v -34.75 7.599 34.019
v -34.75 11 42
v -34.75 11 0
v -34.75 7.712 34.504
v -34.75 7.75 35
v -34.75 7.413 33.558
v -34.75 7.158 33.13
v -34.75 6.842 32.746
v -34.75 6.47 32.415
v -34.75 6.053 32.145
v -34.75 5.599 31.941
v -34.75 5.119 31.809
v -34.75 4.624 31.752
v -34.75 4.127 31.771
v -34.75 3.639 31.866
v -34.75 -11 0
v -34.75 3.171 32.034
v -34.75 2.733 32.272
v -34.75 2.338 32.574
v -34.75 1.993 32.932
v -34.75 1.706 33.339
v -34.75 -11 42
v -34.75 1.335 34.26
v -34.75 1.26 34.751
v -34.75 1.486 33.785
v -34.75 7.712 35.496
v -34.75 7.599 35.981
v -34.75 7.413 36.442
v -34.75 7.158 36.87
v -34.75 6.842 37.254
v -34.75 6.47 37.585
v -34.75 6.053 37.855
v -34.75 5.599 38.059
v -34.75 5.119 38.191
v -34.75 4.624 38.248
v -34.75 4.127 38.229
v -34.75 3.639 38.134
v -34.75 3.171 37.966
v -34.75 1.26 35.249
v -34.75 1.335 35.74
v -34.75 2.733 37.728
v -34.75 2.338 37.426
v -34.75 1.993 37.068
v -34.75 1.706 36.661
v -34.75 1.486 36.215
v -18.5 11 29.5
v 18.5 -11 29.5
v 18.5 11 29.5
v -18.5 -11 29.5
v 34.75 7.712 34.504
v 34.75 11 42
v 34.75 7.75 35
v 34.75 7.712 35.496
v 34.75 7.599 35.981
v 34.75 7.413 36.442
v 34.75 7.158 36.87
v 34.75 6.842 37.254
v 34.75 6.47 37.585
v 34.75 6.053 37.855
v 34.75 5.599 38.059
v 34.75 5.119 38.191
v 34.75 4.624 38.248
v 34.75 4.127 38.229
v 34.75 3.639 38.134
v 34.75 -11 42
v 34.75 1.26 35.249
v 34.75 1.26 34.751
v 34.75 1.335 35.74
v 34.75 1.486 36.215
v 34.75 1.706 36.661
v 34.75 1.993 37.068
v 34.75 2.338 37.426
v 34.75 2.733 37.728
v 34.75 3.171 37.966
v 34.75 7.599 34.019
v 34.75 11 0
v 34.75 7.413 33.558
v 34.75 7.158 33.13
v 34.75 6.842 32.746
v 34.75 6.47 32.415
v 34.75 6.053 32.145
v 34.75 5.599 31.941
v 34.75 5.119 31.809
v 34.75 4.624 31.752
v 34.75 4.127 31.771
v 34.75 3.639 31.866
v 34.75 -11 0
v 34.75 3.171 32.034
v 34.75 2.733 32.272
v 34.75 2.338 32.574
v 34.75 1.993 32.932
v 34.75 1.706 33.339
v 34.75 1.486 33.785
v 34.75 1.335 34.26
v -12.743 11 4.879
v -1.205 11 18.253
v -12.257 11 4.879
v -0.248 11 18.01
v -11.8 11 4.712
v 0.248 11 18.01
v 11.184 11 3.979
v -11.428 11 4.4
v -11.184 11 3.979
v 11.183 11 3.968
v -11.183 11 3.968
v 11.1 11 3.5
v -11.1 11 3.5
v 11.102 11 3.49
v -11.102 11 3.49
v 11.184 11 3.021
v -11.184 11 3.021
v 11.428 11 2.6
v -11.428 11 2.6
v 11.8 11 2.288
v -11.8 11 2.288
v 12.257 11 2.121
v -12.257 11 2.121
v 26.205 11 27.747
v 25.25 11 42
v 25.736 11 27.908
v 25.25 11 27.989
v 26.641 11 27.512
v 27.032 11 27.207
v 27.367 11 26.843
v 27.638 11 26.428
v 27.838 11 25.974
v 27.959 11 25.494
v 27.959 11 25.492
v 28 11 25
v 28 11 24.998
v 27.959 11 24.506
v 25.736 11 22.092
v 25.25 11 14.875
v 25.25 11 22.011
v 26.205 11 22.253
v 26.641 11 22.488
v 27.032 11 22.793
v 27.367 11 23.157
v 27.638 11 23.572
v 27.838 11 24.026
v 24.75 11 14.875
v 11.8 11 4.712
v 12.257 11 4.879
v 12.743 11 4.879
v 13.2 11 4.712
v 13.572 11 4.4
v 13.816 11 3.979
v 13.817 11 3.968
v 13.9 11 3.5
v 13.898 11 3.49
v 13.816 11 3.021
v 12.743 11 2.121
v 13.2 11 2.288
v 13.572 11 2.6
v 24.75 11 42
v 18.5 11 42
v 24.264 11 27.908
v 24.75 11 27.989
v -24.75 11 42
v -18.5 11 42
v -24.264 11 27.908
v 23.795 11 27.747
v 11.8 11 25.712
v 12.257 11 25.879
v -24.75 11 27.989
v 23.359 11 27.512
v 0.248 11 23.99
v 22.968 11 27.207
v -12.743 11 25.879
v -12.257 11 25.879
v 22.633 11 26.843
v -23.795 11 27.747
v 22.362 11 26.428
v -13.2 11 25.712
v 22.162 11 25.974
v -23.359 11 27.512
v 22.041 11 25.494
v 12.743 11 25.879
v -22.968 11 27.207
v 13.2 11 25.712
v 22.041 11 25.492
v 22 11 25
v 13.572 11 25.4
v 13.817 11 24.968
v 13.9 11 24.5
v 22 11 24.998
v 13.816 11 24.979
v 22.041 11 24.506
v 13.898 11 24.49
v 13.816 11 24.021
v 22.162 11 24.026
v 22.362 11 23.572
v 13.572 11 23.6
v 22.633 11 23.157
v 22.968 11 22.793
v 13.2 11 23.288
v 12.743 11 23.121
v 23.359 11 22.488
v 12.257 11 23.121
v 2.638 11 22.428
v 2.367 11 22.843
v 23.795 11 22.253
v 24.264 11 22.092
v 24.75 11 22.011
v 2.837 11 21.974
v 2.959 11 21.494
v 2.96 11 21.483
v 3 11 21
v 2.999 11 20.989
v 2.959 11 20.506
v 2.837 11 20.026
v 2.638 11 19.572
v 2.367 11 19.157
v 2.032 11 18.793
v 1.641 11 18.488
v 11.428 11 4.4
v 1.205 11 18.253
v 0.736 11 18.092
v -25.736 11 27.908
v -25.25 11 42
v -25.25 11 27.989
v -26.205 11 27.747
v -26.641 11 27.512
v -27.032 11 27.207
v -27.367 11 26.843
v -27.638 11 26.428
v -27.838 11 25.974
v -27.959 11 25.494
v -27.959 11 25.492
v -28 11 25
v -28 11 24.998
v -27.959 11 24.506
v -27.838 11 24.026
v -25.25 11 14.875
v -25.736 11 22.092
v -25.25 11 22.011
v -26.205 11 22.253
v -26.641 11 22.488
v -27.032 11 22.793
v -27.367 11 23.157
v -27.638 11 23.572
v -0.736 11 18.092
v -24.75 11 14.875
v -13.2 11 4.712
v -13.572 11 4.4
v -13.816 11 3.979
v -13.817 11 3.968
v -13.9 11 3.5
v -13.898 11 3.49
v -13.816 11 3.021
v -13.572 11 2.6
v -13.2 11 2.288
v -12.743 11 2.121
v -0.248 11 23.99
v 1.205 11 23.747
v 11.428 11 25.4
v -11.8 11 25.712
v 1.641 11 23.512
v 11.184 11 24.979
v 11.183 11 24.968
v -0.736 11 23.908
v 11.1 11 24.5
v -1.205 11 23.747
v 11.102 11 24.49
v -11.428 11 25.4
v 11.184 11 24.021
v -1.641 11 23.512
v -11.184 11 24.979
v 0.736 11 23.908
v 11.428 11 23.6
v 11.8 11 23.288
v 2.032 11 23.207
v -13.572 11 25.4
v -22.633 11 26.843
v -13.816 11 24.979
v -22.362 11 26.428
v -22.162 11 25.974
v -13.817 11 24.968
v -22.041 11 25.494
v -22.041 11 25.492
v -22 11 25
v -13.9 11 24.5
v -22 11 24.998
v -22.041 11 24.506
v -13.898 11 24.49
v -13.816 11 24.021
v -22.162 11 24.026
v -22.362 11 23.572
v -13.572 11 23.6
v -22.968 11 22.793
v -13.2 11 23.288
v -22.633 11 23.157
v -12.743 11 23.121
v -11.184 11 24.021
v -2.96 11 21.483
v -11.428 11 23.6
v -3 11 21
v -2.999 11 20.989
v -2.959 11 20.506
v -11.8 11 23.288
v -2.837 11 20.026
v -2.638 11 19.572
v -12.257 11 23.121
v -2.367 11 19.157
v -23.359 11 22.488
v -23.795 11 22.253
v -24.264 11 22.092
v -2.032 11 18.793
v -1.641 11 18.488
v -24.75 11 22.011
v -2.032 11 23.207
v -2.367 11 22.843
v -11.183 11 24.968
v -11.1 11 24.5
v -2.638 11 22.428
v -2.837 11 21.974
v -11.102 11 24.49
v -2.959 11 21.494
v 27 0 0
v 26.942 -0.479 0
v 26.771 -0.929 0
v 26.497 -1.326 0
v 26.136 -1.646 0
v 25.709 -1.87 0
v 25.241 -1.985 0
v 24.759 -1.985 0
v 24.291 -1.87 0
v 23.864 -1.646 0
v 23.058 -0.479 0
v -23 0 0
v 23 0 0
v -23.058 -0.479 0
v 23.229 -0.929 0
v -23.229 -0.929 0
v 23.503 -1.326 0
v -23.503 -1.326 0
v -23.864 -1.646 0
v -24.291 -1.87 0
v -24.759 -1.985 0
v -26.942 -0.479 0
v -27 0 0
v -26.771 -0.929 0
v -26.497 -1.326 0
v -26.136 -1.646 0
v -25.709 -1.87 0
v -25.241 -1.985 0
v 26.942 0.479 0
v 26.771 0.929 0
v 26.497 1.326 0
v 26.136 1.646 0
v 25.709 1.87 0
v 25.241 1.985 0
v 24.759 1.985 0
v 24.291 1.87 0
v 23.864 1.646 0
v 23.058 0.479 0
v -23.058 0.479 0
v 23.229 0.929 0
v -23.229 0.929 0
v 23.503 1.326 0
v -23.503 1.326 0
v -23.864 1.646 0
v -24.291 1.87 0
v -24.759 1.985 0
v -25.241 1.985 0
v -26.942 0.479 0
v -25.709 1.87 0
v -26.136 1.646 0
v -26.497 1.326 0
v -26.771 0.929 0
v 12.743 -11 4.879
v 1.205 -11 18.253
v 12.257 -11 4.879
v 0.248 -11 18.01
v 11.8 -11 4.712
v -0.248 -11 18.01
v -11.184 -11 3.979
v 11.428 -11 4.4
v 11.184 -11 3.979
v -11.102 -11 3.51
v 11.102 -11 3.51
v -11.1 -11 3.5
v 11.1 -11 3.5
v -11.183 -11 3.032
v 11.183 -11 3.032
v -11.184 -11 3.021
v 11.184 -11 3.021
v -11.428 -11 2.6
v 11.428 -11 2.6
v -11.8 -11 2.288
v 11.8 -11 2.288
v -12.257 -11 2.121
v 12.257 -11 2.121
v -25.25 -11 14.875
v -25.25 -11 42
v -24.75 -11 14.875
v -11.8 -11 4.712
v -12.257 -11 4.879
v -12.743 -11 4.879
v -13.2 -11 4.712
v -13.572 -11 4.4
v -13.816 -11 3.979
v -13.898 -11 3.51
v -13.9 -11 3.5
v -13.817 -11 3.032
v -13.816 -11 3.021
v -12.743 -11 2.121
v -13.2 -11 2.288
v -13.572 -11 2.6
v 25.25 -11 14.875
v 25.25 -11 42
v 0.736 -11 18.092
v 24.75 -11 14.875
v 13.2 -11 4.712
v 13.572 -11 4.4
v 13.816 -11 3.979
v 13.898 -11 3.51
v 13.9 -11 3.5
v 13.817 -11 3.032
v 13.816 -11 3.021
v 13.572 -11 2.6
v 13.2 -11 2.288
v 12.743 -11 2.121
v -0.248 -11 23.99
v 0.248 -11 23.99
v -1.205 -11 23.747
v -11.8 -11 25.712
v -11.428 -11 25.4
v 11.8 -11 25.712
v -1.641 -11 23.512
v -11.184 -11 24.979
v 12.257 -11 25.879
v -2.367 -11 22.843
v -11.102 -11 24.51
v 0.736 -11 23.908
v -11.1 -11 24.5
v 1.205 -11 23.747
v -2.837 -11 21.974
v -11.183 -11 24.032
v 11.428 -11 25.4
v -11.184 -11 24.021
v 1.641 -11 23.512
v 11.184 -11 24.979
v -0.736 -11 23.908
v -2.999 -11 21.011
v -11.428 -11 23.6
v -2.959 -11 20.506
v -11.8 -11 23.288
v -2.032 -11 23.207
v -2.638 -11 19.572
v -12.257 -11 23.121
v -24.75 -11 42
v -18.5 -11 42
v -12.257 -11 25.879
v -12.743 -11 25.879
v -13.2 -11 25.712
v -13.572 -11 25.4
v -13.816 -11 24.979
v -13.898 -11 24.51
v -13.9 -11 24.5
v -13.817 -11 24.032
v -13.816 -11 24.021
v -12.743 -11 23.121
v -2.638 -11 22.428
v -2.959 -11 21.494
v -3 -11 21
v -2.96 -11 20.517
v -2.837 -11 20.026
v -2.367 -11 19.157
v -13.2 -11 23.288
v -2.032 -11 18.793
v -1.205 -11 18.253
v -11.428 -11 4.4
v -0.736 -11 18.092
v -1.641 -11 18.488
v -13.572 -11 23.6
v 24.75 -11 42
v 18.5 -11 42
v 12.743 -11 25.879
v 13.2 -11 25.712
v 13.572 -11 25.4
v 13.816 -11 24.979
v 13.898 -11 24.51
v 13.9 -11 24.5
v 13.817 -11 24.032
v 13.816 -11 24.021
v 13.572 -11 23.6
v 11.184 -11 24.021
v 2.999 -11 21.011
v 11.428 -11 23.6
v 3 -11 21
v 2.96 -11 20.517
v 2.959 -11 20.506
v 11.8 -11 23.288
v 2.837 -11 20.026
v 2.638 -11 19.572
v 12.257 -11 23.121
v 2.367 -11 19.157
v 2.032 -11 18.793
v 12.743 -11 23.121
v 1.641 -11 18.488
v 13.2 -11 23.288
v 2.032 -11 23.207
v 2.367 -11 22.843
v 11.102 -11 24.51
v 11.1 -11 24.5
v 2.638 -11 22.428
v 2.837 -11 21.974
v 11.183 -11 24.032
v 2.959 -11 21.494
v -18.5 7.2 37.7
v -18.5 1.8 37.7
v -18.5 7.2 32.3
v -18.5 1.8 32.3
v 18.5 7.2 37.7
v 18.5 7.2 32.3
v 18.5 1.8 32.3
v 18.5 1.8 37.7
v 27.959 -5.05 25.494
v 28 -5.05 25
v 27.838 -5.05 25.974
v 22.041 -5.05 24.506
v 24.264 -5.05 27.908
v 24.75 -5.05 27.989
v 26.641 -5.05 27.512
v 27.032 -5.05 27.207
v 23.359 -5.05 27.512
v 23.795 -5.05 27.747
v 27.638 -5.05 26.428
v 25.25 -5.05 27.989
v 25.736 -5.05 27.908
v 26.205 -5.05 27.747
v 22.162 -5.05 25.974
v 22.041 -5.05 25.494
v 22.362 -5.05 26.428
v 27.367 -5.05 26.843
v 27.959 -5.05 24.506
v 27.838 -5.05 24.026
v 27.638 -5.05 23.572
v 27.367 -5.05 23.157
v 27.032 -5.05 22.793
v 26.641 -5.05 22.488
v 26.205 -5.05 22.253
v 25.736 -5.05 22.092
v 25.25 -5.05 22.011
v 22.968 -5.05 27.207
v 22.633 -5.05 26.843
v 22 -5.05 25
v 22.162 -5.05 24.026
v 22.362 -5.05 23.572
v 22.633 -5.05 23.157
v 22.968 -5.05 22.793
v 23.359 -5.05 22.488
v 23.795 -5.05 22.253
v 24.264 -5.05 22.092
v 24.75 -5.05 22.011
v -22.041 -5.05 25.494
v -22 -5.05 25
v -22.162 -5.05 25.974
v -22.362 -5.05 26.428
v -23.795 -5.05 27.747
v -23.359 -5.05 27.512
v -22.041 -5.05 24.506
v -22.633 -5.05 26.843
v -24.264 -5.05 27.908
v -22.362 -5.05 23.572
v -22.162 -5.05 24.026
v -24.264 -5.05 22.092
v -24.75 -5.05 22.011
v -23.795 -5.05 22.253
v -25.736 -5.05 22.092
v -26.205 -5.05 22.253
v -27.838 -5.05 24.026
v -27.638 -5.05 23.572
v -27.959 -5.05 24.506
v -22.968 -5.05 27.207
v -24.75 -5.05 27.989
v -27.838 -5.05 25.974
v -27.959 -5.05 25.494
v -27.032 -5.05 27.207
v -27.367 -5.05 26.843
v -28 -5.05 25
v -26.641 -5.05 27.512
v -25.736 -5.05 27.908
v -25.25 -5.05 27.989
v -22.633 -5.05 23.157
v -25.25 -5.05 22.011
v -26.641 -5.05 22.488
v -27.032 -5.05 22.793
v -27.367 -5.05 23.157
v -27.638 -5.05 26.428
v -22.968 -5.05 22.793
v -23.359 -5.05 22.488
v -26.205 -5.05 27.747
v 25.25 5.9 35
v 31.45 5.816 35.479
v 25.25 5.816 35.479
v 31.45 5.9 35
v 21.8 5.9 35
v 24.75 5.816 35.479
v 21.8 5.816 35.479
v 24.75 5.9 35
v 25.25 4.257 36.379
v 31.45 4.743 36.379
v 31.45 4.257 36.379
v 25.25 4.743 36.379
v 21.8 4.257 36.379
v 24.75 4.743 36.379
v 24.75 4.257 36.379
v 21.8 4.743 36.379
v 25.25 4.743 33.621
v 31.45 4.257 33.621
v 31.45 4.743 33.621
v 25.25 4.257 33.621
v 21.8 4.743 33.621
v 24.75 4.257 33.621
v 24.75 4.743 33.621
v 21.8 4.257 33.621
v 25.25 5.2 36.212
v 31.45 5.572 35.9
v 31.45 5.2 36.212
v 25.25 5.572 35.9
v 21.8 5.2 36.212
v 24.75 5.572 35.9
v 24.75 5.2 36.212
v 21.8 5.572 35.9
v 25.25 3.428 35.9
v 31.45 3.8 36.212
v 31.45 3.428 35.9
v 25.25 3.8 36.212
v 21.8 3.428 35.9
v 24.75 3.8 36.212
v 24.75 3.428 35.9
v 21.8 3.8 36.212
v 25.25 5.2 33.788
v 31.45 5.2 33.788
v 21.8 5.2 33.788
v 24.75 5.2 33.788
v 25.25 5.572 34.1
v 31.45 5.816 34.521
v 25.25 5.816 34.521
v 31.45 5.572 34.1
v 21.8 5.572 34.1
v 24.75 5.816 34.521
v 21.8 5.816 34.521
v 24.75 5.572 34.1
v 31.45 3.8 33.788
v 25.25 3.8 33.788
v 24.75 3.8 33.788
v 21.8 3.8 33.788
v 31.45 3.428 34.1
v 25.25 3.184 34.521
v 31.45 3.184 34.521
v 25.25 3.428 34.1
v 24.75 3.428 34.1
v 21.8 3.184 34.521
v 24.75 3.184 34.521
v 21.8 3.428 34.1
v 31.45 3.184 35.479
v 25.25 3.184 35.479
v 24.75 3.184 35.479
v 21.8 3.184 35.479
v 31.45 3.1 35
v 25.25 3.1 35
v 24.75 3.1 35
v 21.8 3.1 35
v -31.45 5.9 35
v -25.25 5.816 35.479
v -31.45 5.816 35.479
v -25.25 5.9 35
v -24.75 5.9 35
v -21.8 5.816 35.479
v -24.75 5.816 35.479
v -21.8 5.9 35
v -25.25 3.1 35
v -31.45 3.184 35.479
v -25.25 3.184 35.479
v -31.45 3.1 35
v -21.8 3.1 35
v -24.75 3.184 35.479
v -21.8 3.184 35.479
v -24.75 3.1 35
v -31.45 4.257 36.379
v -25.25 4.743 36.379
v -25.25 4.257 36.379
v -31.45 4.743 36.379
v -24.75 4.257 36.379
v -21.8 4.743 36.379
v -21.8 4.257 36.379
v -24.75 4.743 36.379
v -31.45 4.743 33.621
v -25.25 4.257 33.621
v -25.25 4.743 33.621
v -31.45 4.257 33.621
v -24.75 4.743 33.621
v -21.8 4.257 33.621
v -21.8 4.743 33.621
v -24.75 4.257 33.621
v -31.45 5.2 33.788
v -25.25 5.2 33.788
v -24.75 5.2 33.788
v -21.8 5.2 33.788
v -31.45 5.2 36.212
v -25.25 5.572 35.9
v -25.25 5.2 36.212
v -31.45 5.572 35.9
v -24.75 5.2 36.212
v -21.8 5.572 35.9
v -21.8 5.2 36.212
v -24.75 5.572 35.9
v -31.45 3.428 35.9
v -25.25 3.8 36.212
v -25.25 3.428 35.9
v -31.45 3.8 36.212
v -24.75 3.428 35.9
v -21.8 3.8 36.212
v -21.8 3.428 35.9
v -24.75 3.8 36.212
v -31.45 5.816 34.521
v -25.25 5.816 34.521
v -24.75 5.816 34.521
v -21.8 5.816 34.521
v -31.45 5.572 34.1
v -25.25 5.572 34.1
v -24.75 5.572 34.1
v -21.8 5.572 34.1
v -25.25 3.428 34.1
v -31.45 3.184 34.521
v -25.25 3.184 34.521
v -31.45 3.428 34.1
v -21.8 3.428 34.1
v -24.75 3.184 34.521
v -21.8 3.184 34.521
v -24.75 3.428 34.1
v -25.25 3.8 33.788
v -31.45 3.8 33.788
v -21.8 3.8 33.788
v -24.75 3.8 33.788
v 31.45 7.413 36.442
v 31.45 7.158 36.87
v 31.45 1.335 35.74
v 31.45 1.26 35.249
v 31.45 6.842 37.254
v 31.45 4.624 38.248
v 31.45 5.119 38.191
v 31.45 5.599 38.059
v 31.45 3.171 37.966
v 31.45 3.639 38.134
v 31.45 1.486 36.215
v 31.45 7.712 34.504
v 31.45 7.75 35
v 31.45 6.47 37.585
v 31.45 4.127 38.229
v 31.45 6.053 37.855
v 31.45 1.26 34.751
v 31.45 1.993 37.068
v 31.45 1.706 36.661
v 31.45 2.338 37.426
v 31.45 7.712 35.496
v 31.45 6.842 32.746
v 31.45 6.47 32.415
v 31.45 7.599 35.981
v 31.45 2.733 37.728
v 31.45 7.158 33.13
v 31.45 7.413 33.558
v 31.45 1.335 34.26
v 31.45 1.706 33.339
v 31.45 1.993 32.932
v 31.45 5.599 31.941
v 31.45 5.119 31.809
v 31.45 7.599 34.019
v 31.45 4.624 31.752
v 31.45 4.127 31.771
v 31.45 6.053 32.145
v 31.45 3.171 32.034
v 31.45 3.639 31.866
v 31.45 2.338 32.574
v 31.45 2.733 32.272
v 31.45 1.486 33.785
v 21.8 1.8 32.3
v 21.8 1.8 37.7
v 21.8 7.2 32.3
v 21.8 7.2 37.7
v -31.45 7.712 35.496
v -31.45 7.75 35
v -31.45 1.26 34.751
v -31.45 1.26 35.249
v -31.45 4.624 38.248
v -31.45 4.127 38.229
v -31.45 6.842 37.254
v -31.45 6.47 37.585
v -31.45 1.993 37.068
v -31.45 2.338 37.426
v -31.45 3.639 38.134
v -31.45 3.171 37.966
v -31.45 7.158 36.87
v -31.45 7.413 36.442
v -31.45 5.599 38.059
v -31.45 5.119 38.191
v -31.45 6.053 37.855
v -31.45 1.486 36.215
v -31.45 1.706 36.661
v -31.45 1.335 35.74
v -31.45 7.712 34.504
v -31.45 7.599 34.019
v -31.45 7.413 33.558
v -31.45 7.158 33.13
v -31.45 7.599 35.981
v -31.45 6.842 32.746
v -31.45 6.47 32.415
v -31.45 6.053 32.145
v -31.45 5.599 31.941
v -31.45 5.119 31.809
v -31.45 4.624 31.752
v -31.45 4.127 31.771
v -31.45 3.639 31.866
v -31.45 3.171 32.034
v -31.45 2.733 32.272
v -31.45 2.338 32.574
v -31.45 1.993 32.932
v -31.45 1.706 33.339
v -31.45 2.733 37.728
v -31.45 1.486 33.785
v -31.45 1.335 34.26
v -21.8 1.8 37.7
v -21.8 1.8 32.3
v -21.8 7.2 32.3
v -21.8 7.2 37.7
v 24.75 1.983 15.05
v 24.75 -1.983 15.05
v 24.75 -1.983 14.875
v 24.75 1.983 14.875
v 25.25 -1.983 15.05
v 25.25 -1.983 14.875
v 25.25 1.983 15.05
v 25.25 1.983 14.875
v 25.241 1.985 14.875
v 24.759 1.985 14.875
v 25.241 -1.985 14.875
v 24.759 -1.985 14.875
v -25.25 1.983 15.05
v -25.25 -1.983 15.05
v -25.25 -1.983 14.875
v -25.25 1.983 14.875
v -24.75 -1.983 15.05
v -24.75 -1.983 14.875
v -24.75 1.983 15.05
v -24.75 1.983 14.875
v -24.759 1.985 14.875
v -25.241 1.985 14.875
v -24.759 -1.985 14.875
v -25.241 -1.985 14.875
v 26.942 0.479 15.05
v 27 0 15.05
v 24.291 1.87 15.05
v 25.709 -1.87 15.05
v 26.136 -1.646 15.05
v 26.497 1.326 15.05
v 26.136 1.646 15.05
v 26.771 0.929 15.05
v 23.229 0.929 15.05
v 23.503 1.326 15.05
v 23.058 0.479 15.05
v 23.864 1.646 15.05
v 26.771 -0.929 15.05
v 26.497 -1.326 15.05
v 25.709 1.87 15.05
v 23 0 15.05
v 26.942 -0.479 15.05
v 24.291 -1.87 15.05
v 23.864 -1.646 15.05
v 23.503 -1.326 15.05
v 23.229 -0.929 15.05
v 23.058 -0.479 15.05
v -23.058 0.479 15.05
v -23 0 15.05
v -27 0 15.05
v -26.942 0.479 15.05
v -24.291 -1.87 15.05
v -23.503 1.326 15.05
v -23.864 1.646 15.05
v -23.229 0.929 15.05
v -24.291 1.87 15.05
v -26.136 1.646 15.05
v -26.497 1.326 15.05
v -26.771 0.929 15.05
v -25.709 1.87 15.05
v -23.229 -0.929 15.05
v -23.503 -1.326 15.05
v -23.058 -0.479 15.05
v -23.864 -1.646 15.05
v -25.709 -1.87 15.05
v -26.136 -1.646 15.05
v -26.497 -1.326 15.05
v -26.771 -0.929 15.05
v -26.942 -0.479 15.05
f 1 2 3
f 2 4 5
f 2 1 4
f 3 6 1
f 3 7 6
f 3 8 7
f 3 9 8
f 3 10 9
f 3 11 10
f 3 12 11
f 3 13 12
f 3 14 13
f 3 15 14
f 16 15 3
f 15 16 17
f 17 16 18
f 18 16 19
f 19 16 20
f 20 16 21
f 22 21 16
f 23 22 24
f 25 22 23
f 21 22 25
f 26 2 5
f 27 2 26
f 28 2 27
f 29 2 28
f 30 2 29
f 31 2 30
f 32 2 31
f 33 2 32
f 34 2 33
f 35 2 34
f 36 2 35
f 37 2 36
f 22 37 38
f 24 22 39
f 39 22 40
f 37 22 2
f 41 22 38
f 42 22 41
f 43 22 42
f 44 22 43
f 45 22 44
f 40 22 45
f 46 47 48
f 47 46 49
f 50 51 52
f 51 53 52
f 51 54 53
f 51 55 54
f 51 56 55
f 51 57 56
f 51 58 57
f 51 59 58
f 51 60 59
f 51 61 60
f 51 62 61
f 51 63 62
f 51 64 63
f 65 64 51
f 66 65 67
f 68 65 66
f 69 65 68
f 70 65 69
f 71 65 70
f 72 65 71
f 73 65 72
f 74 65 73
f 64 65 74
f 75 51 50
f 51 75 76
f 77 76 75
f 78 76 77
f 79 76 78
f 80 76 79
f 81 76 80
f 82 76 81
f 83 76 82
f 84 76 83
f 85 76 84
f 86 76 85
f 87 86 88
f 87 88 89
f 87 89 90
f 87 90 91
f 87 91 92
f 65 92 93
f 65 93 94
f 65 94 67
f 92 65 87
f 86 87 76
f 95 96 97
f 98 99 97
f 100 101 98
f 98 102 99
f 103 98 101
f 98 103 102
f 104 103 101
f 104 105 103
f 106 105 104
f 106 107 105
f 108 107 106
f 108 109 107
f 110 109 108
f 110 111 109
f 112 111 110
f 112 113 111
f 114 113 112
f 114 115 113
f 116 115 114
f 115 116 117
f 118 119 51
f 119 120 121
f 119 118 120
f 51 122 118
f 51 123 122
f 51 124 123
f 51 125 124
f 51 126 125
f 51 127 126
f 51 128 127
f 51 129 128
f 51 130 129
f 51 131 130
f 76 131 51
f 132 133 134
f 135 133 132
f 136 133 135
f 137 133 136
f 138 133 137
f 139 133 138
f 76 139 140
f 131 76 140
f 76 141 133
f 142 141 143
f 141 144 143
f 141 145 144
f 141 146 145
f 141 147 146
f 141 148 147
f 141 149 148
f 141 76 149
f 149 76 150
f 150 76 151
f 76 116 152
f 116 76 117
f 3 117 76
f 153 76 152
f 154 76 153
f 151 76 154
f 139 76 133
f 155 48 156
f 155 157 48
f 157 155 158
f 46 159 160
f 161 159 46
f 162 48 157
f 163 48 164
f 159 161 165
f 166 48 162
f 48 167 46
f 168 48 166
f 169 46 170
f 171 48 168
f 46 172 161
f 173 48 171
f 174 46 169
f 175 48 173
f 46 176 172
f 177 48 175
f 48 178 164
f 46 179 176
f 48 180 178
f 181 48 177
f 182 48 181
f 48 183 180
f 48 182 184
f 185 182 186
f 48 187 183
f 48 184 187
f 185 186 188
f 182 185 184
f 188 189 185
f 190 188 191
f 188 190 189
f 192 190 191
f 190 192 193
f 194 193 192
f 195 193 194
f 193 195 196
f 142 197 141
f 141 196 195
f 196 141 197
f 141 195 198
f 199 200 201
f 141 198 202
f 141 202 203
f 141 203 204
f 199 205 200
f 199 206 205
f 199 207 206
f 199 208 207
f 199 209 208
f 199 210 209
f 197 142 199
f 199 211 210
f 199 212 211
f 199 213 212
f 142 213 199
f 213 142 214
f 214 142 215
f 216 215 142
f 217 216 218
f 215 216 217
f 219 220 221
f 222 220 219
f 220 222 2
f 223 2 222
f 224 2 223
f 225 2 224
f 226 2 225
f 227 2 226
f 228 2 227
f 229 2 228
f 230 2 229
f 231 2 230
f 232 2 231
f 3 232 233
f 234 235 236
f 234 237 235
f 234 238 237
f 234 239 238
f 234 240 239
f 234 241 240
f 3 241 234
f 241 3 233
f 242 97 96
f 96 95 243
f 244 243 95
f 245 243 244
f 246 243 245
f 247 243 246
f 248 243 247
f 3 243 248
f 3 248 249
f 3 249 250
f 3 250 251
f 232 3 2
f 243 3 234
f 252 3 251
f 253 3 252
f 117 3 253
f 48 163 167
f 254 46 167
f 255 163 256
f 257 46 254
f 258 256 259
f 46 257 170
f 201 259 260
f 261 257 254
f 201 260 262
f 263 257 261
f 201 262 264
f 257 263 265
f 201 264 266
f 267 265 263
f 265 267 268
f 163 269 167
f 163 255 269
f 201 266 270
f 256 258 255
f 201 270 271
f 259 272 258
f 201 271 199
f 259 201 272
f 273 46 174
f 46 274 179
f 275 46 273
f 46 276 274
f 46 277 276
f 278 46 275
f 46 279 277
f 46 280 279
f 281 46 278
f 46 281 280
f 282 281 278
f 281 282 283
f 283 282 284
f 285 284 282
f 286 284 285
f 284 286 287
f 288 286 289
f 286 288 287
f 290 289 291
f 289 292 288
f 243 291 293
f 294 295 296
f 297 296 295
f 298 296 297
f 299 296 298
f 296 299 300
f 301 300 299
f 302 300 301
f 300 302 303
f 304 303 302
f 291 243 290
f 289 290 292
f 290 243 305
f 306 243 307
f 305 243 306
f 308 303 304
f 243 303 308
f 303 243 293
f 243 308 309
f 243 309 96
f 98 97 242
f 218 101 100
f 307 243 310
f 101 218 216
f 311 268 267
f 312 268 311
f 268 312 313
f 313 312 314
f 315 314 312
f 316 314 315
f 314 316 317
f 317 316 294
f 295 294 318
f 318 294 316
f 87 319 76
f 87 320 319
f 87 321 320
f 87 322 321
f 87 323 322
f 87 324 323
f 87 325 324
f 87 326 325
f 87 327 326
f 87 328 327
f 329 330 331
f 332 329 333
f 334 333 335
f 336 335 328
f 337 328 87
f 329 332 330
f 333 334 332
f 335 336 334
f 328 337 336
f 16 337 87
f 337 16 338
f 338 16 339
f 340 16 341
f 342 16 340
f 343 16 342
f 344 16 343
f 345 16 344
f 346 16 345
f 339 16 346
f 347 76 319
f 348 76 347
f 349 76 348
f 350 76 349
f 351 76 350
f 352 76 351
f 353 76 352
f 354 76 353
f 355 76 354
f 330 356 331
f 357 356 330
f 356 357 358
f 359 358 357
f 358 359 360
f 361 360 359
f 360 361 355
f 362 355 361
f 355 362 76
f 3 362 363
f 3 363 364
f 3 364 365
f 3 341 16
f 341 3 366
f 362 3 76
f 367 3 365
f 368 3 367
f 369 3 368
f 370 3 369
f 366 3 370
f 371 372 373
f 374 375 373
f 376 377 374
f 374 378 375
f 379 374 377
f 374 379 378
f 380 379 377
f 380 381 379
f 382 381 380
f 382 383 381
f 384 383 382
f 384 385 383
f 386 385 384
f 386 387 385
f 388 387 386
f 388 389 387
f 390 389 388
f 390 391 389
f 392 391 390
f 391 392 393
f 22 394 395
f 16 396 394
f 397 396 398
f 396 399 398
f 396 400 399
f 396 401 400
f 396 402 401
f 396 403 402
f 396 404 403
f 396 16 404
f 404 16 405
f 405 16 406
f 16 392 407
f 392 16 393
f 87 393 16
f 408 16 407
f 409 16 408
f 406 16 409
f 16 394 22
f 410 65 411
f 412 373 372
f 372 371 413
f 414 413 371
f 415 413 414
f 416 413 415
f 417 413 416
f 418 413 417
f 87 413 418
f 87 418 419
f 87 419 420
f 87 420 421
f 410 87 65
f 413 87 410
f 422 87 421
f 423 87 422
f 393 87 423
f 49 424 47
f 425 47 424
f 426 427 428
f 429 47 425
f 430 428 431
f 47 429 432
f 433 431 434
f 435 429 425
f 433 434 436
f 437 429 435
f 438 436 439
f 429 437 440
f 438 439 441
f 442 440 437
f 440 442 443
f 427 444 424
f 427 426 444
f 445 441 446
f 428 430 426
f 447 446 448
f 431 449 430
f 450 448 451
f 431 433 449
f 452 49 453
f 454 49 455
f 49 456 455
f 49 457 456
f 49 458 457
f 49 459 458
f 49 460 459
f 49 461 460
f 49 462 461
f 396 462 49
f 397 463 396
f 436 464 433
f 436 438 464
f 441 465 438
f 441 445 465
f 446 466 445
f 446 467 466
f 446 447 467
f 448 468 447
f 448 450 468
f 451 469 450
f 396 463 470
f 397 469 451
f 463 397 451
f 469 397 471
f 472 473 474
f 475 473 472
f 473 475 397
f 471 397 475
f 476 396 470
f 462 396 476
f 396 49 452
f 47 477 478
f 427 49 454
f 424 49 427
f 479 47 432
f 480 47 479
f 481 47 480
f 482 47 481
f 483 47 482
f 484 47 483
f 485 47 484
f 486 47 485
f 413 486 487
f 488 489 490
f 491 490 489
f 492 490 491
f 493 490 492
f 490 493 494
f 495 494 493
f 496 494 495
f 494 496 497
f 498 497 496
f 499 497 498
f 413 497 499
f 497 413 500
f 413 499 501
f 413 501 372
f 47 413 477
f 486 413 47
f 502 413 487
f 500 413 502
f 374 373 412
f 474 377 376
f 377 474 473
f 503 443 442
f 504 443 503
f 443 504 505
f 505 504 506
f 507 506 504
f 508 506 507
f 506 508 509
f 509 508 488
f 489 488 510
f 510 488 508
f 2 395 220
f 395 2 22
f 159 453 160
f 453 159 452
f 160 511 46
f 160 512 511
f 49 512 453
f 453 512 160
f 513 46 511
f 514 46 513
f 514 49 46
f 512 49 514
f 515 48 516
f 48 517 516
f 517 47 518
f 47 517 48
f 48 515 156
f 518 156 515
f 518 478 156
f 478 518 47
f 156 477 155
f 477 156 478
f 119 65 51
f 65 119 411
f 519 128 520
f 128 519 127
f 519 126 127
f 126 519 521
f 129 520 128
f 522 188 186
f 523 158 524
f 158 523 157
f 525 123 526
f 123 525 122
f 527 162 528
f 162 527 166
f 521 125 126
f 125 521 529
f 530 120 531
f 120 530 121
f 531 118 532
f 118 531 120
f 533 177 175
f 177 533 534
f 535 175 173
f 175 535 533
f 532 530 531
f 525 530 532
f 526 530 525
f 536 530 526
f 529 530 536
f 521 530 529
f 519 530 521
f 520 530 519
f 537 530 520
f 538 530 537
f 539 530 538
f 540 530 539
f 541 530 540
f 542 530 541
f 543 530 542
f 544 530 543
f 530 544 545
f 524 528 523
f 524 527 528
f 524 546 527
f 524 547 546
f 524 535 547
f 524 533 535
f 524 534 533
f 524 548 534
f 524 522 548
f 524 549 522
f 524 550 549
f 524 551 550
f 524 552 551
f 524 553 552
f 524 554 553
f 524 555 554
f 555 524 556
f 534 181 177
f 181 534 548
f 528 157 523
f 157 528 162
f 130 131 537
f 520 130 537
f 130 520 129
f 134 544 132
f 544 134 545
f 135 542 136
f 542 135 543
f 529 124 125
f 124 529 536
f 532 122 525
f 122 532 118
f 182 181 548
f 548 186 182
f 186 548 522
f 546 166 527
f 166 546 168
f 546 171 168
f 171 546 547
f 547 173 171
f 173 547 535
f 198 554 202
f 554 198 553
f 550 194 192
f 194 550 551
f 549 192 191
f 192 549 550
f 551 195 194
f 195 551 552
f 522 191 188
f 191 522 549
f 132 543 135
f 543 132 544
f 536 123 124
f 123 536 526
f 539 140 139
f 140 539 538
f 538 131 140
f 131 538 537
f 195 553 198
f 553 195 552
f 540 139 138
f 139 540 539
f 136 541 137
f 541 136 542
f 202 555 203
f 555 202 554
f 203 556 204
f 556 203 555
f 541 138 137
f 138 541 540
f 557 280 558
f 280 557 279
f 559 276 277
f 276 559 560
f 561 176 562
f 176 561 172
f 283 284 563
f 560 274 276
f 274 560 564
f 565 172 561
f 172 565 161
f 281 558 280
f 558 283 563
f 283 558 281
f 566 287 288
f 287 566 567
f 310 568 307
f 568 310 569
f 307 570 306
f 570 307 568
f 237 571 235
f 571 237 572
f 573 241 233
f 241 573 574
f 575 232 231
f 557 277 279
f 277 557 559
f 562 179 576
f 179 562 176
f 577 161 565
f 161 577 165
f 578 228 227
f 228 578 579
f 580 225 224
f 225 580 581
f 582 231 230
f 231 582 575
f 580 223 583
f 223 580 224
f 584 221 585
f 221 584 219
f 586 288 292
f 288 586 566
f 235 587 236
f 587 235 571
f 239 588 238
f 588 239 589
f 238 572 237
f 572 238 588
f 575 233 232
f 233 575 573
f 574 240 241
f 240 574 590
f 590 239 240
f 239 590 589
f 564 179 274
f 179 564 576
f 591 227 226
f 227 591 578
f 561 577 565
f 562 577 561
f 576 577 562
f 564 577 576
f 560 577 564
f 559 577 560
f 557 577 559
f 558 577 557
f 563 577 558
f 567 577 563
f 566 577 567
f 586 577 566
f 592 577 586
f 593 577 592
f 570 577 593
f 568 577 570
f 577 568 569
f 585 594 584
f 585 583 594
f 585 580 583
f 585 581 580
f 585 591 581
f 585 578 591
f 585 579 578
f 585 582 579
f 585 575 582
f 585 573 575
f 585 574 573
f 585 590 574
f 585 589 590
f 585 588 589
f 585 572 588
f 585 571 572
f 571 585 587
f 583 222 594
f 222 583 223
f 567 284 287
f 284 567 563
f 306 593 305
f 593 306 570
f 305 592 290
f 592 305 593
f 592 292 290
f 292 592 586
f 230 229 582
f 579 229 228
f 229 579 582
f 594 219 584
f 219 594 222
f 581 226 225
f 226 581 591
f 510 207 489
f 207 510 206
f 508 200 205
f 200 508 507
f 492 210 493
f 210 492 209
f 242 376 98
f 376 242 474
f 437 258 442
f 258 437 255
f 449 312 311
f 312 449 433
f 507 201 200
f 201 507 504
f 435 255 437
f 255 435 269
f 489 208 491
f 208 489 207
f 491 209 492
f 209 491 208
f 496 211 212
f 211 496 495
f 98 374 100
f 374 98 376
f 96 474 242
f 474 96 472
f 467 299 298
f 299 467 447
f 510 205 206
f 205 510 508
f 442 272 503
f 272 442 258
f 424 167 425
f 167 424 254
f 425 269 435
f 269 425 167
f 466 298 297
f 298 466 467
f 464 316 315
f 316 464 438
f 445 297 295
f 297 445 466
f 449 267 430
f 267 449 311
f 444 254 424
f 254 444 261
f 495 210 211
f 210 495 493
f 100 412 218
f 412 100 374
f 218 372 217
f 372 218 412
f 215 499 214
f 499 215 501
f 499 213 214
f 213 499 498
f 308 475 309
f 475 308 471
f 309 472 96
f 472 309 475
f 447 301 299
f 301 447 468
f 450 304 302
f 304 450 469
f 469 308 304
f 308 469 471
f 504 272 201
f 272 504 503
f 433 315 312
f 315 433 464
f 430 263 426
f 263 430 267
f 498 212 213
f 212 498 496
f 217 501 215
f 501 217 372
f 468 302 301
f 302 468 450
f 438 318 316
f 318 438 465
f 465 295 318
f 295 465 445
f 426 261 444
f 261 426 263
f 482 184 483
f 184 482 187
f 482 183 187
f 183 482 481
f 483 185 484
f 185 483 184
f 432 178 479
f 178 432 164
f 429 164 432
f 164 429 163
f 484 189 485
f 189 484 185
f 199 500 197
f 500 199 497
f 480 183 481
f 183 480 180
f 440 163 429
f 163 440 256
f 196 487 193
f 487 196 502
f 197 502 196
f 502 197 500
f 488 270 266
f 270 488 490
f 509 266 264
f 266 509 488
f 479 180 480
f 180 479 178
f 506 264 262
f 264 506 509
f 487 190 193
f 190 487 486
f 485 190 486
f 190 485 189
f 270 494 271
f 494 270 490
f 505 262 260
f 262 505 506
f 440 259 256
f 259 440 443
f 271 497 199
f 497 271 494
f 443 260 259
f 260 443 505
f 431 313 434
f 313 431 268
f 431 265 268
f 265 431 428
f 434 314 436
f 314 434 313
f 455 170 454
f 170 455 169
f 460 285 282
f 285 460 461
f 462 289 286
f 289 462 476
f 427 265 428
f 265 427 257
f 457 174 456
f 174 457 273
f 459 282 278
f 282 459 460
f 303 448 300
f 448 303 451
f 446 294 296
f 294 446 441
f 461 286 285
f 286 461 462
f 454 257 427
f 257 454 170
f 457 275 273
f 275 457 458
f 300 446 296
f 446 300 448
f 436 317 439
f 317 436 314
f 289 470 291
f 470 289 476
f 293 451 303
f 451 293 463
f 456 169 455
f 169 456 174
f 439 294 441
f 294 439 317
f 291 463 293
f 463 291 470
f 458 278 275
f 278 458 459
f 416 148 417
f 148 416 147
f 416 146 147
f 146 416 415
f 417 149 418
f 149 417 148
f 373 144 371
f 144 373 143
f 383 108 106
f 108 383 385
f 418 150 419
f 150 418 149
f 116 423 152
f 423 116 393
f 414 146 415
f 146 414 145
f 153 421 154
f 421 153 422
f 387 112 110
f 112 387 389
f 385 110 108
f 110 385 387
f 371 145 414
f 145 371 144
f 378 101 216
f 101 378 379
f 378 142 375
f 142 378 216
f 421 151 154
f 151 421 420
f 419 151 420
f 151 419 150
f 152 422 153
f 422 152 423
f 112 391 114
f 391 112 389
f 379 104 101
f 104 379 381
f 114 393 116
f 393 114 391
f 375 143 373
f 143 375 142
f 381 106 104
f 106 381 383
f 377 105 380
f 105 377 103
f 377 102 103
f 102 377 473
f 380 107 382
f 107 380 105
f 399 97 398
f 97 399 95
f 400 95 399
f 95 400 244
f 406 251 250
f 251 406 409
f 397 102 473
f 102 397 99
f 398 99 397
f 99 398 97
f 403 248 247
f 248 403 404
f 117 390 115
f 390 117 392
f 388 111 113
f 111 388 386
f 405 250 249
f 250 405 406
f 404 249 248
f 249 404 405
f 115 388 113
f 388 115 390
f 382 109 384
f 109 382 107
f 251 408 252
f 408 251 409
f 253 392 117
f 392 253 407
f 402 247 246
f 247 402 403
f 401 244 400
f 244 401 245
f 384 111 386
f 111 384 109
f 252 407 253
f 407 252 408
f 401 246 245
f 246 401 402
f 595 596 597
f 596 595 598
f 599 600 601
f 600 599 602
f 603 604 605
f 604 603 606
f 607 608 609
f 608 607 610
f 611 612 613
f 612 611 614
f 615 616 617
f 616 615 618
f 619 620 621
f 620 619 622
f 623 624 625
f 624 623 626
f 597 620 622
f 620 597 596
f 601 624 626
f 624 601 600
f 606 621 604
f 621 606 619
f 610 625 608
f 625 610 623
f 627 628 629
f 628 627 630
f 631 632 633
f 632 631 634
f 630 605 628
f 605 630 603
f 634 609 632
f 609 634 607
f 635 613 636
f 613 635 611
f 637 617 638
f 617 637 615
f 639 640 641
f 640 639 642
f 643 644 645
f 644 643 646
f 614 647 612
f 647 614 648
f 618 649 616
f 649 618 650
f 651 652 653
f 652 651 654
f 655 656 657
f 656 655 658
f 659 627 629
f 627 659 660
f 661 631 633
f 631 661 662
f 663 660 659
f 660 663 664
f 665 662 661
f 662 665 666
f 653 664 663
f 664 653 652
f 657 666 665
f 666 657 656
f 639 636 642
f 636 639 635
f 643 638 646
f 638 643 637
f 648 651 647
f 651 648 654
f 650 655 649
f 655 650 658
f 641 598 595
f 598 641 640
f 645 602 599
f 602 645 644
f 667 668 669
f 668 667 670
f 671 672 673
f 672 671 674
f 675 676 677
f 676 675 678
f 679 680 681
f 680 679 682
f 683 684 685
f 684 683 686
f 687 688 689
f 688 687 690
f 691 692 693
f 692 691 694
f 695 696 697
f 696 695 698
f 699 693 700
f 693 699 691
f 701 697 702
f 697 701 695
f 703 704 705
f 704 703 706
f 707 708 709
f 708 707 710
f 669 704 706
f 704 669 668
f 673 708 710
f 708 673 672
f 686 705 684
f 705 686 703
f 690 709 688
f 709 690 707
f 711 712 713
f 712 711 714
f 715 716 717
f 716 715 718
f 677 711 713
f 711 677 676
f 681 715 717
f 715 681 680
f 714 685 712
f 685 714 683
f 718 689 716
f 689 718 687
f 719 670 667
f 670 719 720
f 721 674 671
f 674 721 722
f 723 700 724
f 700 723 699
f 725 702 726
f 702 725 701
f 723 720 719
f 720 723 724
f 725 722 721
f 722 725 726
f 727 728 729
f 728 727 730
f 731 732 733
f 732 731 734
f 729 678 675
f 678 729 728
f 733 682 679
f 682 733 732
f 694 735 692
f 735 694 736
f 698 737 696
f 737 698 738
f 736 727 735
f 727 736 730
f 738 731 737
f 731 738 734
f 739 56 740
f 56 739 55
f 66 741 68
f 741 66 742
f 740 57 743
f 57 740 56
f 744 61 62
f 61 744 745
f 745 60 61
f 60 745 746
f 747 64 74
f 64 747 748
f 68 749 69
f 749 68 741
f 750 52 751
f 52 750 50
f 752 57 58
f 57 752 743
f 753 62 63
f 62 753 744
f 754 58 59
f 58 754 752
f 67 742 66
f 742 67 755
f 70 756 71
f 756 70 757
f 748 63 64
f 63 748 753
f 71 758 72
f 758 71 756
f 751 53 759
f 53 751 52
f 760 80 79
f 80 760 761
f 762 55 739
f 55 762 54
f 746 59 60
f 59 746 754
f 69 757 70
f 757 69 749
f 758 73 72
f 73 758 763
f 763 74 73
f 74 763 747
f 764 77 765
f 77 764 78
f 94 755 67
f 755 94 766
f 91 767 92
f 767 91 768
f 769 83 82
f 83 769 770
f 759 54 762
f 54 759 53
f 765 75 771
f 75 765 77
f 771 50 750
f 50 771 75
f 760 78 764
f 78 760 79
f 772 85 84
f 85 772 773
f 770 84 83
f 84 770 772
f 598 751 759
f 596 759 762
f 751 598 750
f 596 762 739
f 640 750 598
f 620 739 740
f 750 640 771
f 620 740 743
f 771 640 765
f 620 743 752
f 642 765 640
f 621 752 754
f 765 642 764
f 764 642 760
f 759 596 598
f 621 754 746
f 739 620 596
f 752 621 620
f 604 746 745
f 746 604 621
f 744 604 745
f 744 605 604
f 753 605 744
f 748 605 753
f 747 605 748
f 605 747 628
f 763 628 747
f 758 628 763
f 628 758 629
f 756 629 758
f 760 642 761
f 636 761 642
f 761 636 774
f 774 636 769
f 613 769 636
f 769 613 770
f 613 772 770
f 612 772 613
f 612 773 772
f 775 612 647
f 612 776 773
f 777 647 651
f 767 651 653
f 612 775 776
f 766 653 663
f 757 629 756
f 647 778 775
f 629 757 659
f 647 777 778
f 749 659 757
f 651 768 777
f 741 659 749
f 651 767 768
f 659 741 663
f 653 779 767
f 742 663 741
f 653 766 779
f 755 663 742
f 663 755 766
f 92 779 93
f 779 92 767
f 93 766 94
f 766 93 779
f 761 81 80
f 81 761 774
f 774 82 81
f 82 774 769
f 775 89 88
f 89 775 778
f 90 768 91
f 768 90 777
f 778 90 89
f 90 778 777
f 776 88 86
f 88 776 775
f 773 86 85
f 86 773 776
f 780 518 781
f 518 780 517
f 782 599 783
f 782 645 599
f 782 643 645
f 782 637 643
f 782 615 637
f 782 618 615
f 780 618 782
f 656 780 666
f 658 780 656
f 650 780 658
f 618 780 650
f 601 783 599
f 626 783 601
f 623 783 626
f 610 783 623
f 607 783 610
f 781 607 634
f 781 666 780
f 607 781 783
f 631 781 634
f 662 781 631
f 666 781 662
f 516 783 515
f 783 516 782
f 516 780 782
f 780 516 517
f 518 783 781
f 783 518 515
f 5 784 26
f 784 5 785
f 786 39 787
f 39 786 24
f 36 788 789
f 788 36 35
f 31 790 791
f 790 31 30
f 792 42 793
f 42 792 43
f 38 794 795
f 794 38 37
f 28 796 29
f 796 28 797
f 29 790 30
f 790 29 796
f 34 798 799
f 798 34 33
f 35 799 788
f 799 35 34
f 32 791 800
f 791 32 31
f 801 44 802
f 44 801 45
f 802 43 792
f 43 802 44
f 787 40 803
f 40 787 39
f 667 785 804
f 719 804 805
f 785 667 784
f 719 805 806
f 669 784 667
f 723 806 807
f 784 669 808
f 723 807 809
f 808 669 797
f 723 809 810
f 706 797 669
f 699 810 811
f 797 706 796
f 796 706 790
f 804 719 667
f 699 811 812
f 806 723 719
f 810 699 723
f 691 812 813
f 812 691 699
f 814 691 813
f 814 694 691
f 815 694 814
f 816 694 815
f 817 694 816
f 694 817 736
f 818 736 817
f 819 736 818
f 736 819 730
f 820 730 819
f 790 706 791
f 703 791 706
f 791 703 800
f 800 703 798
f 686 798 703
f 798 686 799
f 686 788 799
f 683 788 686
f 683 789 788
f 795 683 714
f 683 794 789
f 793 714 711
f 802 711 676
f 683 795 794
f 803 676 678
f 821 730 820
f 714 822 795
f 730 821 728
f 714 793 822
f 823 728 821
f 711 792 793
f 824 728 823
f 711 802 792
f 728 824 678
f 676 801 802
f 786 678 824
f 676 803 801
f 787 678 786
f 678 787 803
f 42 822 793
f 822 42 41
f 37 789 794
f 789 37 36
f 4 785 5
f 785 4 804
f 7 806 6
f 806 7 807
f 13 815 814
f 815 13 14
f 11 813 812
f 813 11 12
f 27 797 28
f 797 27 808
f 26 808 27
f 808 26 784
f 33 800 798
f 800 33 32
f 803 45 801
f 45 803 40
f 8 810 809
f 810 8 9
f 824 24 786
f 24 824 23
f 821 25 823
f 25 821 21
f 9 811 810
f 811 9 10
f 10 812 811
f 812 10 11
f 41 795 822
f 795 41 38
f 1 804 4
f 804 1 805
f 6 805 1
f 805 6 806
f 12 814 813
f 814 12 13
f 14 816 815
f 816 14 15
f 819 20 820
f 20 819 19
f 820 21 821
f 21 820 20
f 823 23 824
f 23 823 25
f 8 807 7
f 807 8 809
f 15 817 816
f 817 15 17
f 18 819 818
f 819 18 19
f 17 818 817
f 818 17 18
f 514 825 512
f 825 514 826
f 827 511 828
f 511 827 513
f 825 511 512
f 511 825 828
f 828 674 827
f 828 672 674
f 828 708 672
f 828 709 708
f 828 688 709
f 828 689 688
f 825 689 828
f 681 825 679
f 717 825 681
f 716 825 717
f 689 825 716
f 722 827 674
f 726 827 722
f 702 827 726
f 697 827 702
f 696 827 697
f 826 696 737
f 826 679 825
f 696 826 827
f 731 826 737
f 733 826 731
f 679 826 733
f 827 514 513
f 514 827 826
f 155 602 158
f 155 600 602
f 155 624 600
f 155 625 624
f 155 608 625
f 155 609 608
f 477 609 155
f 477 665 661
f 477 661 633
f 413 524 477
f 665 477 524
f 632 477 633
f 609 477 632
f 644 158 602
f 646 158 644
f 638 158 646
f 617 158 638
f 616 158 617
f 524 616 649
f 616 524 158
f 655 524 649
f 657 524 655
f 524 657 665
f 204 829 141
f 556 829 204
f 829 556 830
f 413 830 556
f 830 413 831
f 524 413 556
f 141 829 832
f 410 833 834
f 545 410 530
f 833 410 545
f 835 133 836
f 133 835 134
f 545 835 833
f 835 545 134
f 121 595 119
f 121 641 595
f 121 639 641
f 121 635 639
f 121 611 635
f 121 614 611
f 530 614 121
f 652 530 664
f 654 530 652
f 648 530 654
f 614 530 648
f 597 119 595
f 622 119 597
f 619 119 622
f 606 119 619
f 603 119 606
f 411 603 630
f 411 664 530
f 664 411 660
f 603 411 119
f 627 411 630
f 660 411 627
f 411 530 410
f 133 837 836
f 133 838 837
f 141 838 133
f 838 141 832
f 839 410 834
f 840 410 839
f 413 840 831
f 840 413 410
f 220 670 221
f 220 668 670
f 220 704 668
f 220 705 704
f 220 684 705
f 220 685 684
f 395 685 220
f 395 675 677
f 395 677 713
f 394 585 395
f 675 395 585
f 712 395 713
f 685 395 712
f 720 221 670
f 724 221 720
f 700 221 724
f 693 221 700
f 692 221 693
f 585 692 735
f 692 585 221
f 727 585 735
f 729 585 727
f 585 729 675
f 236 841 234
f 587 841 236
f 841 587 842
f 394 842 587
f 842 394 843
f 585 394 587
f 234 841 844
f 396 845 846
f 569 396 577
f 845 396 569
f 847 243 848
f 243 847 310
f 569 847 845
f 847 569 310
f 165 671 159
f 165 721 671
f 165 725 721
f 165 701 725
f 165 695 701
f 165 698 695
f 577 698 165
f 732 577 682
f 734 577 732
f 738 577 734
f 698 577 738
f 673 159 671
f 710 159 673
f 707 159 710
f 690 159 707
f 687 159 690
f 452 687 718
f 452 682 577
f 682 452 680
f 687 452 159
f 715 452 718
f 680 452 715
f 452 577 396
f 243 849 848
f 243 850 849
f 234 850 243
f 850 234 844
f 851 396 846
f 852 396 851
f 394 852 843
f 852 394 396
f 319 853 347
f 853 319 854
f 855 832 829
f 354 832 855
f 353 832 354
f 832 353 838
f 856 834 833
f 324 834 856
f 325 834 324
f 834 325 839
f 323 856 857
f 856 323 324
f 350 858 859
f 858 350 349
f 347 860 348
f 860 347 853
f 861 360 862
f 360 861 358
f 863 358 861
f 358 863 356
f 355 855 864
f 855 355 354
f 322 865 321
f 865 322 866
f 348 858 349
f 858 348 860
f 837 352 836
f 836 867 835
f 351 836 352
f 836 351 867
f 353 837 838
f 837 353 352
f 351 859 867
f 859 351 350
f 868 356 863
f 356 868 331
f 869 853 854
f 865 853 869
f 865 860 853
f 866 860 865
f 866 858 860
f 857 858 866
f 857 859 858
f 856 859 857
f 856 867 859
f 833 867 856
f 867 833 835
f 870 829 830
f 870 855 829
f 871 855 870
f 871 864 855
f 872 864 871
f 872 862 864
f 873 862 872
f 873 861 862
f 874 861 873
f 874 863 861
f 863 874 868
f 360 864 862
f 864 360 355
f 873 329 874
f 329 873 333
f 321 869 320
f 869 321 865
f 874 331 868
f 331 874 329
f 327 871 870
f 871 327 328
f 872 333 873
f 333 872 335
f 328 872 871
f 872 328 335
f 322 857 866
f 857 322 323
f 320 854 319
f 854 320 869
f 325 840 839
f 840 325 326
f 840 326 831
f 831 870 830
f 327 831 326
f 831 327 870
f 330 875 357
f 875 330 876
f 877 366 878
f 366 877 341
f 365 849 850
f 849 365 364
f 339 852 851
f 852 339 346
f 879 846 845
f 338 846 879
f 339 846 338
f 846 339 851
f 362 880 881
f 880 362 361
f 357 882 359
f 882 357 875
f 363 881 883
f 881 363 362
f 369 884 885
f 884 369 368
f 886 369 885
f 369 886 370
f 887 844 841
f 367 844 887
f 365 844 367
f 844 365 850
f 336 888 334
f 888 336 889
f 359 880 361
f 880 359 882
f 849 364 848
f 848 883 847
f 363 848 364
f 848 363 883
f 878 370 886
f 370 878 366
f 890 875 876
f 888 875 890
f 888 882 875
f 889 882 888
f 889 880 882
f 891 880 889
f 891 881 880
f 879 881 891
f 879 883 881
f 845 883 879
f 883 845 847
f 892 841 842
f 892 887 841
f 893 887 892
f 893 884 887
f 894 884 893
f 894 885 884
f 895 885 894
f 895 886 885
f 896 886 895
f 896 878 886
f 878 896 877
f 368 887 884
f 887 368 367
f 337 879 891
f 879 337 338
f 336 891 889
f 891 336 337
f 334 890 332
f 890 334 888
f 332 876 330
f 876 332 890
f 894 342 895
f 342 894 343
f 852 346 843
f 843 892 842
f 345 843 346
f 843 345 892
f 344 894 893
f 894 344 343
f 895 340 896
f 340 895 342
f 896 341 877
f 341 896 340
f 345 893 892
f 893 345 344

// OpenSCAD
$fa=0.5; // default minimum facet angle is now 0.5
$fs=0.5; // default minimum facet size is now 0.5 mm

difference() {
    union() {
        //main body
        translate([0, 0, 29.5/2]) 
        cube([69.5, 22, 29.5], center = true);
        
        //top pieces
        color("blue")
        translate([-69.5/2+16.25/2, 0, 6.25+29.5])
        cube([16.25 , 22, 12.5], center = true);
        
        color("blue")
        translate([69.5/2-16.25/2, 0, 6.25+29.5])
        cube([16.25 , 22, 12.5], center = true);     

    }
    //holes for rods
    rotate([90, 0, 0])
    translate([25, 25, -3]) 
    cylinder(h = 16.1, r = 3, center = true);
    
    rotate([90, 0, 0])
    translate([-25, 25, -3]) 
    cylinder(h = 16.1, r = 3, center = true);
    
    //hole in center
    rotate([90, 0, 0])
    translate([0, 21, 0]) 
    cylinder(h = 23, r = 3, center = true);
    
    //top holes for screws
    rotate([90, 0, 0])
    translate([12.5, 24.5, 0]) 
    cylinder(h = 23, r = 1.4, center = true);
    
    rotate([90, 0, 0])
    translate([-12.5, 24.5, 0]) 
    cylinder(h = 23, r = 1.4, center = true);
    
    //bottom holes for screws
    rotate([90, 0, 0])
    translate([12.5, 3.5, 0]) 
    cylinder(h = 23, r = 1.4, center = true);
    
    rotate([90, 0, 0])
    translate([-12.5, 3.5, 0]) 
    cylinder(h = 23, r = 1.4, center = true);
  
    //top side holes for screws
    rotate([90, 0, 90])
    translate([4.5, 35, 69.5/2-16.25/2]) 
    cylinder(h = 16.5, r = 1.4, center = true);
    
    rotate([90, 0, 90])
    translate([4.5, 35, -69.5/2+16.25/2]) 
    cylinder(h = 16.5, r = 1.4, center = true); 
    
    //top side sink holes
    rotate([90, 0, 90])
    translate([4.5, 35, 69.5/2-1.5]) 
    cylinder(h = 3.6, r = 3.25, center = true);
    //outside
    
    rotate([90, 0, 90])
    translate([4.5, 35, 69.5/2-16.25+1.5]) 
    cube([5.4, 5.4, 3.6], center = true);
    //cylinder(h = 3.6, r = 1.25, center = true);
    //inside
    
    rotate([90, 0, 90])
    translate([4.5, 35, -69.5/2+1.5])
    cylinder(h = 3.6, r = 3.25, center = true);
    //outside
    
    rotate([90, 0, 90])
    translate([4.5, 35, -69.5/2+16.25-1.5])
    cube([5.4, 5.4, 3.6], center = true);
    //cylinder(h = 3.6, r = 1.25, center = true);
    //inside
    
    //slits
    translate([25, 0, 27.5/2+15]) 
    cube([.5, 22.5, 27.75], center = true);
    
    translate([-25, 0, 27.5/2+15]) 
    cube([.5, 22.5, 27.75], center = true);
    
    //connector holes for end
    translate([25, 0, 15/2]) 
    cylinder(h = 15 + 0.1, r = 2, center = true); //screw hole

    translate([-25, 0, 15/2]) 
    cylinder(h = 15 + 0.1, r = 2, center = true); //screw hole
}
